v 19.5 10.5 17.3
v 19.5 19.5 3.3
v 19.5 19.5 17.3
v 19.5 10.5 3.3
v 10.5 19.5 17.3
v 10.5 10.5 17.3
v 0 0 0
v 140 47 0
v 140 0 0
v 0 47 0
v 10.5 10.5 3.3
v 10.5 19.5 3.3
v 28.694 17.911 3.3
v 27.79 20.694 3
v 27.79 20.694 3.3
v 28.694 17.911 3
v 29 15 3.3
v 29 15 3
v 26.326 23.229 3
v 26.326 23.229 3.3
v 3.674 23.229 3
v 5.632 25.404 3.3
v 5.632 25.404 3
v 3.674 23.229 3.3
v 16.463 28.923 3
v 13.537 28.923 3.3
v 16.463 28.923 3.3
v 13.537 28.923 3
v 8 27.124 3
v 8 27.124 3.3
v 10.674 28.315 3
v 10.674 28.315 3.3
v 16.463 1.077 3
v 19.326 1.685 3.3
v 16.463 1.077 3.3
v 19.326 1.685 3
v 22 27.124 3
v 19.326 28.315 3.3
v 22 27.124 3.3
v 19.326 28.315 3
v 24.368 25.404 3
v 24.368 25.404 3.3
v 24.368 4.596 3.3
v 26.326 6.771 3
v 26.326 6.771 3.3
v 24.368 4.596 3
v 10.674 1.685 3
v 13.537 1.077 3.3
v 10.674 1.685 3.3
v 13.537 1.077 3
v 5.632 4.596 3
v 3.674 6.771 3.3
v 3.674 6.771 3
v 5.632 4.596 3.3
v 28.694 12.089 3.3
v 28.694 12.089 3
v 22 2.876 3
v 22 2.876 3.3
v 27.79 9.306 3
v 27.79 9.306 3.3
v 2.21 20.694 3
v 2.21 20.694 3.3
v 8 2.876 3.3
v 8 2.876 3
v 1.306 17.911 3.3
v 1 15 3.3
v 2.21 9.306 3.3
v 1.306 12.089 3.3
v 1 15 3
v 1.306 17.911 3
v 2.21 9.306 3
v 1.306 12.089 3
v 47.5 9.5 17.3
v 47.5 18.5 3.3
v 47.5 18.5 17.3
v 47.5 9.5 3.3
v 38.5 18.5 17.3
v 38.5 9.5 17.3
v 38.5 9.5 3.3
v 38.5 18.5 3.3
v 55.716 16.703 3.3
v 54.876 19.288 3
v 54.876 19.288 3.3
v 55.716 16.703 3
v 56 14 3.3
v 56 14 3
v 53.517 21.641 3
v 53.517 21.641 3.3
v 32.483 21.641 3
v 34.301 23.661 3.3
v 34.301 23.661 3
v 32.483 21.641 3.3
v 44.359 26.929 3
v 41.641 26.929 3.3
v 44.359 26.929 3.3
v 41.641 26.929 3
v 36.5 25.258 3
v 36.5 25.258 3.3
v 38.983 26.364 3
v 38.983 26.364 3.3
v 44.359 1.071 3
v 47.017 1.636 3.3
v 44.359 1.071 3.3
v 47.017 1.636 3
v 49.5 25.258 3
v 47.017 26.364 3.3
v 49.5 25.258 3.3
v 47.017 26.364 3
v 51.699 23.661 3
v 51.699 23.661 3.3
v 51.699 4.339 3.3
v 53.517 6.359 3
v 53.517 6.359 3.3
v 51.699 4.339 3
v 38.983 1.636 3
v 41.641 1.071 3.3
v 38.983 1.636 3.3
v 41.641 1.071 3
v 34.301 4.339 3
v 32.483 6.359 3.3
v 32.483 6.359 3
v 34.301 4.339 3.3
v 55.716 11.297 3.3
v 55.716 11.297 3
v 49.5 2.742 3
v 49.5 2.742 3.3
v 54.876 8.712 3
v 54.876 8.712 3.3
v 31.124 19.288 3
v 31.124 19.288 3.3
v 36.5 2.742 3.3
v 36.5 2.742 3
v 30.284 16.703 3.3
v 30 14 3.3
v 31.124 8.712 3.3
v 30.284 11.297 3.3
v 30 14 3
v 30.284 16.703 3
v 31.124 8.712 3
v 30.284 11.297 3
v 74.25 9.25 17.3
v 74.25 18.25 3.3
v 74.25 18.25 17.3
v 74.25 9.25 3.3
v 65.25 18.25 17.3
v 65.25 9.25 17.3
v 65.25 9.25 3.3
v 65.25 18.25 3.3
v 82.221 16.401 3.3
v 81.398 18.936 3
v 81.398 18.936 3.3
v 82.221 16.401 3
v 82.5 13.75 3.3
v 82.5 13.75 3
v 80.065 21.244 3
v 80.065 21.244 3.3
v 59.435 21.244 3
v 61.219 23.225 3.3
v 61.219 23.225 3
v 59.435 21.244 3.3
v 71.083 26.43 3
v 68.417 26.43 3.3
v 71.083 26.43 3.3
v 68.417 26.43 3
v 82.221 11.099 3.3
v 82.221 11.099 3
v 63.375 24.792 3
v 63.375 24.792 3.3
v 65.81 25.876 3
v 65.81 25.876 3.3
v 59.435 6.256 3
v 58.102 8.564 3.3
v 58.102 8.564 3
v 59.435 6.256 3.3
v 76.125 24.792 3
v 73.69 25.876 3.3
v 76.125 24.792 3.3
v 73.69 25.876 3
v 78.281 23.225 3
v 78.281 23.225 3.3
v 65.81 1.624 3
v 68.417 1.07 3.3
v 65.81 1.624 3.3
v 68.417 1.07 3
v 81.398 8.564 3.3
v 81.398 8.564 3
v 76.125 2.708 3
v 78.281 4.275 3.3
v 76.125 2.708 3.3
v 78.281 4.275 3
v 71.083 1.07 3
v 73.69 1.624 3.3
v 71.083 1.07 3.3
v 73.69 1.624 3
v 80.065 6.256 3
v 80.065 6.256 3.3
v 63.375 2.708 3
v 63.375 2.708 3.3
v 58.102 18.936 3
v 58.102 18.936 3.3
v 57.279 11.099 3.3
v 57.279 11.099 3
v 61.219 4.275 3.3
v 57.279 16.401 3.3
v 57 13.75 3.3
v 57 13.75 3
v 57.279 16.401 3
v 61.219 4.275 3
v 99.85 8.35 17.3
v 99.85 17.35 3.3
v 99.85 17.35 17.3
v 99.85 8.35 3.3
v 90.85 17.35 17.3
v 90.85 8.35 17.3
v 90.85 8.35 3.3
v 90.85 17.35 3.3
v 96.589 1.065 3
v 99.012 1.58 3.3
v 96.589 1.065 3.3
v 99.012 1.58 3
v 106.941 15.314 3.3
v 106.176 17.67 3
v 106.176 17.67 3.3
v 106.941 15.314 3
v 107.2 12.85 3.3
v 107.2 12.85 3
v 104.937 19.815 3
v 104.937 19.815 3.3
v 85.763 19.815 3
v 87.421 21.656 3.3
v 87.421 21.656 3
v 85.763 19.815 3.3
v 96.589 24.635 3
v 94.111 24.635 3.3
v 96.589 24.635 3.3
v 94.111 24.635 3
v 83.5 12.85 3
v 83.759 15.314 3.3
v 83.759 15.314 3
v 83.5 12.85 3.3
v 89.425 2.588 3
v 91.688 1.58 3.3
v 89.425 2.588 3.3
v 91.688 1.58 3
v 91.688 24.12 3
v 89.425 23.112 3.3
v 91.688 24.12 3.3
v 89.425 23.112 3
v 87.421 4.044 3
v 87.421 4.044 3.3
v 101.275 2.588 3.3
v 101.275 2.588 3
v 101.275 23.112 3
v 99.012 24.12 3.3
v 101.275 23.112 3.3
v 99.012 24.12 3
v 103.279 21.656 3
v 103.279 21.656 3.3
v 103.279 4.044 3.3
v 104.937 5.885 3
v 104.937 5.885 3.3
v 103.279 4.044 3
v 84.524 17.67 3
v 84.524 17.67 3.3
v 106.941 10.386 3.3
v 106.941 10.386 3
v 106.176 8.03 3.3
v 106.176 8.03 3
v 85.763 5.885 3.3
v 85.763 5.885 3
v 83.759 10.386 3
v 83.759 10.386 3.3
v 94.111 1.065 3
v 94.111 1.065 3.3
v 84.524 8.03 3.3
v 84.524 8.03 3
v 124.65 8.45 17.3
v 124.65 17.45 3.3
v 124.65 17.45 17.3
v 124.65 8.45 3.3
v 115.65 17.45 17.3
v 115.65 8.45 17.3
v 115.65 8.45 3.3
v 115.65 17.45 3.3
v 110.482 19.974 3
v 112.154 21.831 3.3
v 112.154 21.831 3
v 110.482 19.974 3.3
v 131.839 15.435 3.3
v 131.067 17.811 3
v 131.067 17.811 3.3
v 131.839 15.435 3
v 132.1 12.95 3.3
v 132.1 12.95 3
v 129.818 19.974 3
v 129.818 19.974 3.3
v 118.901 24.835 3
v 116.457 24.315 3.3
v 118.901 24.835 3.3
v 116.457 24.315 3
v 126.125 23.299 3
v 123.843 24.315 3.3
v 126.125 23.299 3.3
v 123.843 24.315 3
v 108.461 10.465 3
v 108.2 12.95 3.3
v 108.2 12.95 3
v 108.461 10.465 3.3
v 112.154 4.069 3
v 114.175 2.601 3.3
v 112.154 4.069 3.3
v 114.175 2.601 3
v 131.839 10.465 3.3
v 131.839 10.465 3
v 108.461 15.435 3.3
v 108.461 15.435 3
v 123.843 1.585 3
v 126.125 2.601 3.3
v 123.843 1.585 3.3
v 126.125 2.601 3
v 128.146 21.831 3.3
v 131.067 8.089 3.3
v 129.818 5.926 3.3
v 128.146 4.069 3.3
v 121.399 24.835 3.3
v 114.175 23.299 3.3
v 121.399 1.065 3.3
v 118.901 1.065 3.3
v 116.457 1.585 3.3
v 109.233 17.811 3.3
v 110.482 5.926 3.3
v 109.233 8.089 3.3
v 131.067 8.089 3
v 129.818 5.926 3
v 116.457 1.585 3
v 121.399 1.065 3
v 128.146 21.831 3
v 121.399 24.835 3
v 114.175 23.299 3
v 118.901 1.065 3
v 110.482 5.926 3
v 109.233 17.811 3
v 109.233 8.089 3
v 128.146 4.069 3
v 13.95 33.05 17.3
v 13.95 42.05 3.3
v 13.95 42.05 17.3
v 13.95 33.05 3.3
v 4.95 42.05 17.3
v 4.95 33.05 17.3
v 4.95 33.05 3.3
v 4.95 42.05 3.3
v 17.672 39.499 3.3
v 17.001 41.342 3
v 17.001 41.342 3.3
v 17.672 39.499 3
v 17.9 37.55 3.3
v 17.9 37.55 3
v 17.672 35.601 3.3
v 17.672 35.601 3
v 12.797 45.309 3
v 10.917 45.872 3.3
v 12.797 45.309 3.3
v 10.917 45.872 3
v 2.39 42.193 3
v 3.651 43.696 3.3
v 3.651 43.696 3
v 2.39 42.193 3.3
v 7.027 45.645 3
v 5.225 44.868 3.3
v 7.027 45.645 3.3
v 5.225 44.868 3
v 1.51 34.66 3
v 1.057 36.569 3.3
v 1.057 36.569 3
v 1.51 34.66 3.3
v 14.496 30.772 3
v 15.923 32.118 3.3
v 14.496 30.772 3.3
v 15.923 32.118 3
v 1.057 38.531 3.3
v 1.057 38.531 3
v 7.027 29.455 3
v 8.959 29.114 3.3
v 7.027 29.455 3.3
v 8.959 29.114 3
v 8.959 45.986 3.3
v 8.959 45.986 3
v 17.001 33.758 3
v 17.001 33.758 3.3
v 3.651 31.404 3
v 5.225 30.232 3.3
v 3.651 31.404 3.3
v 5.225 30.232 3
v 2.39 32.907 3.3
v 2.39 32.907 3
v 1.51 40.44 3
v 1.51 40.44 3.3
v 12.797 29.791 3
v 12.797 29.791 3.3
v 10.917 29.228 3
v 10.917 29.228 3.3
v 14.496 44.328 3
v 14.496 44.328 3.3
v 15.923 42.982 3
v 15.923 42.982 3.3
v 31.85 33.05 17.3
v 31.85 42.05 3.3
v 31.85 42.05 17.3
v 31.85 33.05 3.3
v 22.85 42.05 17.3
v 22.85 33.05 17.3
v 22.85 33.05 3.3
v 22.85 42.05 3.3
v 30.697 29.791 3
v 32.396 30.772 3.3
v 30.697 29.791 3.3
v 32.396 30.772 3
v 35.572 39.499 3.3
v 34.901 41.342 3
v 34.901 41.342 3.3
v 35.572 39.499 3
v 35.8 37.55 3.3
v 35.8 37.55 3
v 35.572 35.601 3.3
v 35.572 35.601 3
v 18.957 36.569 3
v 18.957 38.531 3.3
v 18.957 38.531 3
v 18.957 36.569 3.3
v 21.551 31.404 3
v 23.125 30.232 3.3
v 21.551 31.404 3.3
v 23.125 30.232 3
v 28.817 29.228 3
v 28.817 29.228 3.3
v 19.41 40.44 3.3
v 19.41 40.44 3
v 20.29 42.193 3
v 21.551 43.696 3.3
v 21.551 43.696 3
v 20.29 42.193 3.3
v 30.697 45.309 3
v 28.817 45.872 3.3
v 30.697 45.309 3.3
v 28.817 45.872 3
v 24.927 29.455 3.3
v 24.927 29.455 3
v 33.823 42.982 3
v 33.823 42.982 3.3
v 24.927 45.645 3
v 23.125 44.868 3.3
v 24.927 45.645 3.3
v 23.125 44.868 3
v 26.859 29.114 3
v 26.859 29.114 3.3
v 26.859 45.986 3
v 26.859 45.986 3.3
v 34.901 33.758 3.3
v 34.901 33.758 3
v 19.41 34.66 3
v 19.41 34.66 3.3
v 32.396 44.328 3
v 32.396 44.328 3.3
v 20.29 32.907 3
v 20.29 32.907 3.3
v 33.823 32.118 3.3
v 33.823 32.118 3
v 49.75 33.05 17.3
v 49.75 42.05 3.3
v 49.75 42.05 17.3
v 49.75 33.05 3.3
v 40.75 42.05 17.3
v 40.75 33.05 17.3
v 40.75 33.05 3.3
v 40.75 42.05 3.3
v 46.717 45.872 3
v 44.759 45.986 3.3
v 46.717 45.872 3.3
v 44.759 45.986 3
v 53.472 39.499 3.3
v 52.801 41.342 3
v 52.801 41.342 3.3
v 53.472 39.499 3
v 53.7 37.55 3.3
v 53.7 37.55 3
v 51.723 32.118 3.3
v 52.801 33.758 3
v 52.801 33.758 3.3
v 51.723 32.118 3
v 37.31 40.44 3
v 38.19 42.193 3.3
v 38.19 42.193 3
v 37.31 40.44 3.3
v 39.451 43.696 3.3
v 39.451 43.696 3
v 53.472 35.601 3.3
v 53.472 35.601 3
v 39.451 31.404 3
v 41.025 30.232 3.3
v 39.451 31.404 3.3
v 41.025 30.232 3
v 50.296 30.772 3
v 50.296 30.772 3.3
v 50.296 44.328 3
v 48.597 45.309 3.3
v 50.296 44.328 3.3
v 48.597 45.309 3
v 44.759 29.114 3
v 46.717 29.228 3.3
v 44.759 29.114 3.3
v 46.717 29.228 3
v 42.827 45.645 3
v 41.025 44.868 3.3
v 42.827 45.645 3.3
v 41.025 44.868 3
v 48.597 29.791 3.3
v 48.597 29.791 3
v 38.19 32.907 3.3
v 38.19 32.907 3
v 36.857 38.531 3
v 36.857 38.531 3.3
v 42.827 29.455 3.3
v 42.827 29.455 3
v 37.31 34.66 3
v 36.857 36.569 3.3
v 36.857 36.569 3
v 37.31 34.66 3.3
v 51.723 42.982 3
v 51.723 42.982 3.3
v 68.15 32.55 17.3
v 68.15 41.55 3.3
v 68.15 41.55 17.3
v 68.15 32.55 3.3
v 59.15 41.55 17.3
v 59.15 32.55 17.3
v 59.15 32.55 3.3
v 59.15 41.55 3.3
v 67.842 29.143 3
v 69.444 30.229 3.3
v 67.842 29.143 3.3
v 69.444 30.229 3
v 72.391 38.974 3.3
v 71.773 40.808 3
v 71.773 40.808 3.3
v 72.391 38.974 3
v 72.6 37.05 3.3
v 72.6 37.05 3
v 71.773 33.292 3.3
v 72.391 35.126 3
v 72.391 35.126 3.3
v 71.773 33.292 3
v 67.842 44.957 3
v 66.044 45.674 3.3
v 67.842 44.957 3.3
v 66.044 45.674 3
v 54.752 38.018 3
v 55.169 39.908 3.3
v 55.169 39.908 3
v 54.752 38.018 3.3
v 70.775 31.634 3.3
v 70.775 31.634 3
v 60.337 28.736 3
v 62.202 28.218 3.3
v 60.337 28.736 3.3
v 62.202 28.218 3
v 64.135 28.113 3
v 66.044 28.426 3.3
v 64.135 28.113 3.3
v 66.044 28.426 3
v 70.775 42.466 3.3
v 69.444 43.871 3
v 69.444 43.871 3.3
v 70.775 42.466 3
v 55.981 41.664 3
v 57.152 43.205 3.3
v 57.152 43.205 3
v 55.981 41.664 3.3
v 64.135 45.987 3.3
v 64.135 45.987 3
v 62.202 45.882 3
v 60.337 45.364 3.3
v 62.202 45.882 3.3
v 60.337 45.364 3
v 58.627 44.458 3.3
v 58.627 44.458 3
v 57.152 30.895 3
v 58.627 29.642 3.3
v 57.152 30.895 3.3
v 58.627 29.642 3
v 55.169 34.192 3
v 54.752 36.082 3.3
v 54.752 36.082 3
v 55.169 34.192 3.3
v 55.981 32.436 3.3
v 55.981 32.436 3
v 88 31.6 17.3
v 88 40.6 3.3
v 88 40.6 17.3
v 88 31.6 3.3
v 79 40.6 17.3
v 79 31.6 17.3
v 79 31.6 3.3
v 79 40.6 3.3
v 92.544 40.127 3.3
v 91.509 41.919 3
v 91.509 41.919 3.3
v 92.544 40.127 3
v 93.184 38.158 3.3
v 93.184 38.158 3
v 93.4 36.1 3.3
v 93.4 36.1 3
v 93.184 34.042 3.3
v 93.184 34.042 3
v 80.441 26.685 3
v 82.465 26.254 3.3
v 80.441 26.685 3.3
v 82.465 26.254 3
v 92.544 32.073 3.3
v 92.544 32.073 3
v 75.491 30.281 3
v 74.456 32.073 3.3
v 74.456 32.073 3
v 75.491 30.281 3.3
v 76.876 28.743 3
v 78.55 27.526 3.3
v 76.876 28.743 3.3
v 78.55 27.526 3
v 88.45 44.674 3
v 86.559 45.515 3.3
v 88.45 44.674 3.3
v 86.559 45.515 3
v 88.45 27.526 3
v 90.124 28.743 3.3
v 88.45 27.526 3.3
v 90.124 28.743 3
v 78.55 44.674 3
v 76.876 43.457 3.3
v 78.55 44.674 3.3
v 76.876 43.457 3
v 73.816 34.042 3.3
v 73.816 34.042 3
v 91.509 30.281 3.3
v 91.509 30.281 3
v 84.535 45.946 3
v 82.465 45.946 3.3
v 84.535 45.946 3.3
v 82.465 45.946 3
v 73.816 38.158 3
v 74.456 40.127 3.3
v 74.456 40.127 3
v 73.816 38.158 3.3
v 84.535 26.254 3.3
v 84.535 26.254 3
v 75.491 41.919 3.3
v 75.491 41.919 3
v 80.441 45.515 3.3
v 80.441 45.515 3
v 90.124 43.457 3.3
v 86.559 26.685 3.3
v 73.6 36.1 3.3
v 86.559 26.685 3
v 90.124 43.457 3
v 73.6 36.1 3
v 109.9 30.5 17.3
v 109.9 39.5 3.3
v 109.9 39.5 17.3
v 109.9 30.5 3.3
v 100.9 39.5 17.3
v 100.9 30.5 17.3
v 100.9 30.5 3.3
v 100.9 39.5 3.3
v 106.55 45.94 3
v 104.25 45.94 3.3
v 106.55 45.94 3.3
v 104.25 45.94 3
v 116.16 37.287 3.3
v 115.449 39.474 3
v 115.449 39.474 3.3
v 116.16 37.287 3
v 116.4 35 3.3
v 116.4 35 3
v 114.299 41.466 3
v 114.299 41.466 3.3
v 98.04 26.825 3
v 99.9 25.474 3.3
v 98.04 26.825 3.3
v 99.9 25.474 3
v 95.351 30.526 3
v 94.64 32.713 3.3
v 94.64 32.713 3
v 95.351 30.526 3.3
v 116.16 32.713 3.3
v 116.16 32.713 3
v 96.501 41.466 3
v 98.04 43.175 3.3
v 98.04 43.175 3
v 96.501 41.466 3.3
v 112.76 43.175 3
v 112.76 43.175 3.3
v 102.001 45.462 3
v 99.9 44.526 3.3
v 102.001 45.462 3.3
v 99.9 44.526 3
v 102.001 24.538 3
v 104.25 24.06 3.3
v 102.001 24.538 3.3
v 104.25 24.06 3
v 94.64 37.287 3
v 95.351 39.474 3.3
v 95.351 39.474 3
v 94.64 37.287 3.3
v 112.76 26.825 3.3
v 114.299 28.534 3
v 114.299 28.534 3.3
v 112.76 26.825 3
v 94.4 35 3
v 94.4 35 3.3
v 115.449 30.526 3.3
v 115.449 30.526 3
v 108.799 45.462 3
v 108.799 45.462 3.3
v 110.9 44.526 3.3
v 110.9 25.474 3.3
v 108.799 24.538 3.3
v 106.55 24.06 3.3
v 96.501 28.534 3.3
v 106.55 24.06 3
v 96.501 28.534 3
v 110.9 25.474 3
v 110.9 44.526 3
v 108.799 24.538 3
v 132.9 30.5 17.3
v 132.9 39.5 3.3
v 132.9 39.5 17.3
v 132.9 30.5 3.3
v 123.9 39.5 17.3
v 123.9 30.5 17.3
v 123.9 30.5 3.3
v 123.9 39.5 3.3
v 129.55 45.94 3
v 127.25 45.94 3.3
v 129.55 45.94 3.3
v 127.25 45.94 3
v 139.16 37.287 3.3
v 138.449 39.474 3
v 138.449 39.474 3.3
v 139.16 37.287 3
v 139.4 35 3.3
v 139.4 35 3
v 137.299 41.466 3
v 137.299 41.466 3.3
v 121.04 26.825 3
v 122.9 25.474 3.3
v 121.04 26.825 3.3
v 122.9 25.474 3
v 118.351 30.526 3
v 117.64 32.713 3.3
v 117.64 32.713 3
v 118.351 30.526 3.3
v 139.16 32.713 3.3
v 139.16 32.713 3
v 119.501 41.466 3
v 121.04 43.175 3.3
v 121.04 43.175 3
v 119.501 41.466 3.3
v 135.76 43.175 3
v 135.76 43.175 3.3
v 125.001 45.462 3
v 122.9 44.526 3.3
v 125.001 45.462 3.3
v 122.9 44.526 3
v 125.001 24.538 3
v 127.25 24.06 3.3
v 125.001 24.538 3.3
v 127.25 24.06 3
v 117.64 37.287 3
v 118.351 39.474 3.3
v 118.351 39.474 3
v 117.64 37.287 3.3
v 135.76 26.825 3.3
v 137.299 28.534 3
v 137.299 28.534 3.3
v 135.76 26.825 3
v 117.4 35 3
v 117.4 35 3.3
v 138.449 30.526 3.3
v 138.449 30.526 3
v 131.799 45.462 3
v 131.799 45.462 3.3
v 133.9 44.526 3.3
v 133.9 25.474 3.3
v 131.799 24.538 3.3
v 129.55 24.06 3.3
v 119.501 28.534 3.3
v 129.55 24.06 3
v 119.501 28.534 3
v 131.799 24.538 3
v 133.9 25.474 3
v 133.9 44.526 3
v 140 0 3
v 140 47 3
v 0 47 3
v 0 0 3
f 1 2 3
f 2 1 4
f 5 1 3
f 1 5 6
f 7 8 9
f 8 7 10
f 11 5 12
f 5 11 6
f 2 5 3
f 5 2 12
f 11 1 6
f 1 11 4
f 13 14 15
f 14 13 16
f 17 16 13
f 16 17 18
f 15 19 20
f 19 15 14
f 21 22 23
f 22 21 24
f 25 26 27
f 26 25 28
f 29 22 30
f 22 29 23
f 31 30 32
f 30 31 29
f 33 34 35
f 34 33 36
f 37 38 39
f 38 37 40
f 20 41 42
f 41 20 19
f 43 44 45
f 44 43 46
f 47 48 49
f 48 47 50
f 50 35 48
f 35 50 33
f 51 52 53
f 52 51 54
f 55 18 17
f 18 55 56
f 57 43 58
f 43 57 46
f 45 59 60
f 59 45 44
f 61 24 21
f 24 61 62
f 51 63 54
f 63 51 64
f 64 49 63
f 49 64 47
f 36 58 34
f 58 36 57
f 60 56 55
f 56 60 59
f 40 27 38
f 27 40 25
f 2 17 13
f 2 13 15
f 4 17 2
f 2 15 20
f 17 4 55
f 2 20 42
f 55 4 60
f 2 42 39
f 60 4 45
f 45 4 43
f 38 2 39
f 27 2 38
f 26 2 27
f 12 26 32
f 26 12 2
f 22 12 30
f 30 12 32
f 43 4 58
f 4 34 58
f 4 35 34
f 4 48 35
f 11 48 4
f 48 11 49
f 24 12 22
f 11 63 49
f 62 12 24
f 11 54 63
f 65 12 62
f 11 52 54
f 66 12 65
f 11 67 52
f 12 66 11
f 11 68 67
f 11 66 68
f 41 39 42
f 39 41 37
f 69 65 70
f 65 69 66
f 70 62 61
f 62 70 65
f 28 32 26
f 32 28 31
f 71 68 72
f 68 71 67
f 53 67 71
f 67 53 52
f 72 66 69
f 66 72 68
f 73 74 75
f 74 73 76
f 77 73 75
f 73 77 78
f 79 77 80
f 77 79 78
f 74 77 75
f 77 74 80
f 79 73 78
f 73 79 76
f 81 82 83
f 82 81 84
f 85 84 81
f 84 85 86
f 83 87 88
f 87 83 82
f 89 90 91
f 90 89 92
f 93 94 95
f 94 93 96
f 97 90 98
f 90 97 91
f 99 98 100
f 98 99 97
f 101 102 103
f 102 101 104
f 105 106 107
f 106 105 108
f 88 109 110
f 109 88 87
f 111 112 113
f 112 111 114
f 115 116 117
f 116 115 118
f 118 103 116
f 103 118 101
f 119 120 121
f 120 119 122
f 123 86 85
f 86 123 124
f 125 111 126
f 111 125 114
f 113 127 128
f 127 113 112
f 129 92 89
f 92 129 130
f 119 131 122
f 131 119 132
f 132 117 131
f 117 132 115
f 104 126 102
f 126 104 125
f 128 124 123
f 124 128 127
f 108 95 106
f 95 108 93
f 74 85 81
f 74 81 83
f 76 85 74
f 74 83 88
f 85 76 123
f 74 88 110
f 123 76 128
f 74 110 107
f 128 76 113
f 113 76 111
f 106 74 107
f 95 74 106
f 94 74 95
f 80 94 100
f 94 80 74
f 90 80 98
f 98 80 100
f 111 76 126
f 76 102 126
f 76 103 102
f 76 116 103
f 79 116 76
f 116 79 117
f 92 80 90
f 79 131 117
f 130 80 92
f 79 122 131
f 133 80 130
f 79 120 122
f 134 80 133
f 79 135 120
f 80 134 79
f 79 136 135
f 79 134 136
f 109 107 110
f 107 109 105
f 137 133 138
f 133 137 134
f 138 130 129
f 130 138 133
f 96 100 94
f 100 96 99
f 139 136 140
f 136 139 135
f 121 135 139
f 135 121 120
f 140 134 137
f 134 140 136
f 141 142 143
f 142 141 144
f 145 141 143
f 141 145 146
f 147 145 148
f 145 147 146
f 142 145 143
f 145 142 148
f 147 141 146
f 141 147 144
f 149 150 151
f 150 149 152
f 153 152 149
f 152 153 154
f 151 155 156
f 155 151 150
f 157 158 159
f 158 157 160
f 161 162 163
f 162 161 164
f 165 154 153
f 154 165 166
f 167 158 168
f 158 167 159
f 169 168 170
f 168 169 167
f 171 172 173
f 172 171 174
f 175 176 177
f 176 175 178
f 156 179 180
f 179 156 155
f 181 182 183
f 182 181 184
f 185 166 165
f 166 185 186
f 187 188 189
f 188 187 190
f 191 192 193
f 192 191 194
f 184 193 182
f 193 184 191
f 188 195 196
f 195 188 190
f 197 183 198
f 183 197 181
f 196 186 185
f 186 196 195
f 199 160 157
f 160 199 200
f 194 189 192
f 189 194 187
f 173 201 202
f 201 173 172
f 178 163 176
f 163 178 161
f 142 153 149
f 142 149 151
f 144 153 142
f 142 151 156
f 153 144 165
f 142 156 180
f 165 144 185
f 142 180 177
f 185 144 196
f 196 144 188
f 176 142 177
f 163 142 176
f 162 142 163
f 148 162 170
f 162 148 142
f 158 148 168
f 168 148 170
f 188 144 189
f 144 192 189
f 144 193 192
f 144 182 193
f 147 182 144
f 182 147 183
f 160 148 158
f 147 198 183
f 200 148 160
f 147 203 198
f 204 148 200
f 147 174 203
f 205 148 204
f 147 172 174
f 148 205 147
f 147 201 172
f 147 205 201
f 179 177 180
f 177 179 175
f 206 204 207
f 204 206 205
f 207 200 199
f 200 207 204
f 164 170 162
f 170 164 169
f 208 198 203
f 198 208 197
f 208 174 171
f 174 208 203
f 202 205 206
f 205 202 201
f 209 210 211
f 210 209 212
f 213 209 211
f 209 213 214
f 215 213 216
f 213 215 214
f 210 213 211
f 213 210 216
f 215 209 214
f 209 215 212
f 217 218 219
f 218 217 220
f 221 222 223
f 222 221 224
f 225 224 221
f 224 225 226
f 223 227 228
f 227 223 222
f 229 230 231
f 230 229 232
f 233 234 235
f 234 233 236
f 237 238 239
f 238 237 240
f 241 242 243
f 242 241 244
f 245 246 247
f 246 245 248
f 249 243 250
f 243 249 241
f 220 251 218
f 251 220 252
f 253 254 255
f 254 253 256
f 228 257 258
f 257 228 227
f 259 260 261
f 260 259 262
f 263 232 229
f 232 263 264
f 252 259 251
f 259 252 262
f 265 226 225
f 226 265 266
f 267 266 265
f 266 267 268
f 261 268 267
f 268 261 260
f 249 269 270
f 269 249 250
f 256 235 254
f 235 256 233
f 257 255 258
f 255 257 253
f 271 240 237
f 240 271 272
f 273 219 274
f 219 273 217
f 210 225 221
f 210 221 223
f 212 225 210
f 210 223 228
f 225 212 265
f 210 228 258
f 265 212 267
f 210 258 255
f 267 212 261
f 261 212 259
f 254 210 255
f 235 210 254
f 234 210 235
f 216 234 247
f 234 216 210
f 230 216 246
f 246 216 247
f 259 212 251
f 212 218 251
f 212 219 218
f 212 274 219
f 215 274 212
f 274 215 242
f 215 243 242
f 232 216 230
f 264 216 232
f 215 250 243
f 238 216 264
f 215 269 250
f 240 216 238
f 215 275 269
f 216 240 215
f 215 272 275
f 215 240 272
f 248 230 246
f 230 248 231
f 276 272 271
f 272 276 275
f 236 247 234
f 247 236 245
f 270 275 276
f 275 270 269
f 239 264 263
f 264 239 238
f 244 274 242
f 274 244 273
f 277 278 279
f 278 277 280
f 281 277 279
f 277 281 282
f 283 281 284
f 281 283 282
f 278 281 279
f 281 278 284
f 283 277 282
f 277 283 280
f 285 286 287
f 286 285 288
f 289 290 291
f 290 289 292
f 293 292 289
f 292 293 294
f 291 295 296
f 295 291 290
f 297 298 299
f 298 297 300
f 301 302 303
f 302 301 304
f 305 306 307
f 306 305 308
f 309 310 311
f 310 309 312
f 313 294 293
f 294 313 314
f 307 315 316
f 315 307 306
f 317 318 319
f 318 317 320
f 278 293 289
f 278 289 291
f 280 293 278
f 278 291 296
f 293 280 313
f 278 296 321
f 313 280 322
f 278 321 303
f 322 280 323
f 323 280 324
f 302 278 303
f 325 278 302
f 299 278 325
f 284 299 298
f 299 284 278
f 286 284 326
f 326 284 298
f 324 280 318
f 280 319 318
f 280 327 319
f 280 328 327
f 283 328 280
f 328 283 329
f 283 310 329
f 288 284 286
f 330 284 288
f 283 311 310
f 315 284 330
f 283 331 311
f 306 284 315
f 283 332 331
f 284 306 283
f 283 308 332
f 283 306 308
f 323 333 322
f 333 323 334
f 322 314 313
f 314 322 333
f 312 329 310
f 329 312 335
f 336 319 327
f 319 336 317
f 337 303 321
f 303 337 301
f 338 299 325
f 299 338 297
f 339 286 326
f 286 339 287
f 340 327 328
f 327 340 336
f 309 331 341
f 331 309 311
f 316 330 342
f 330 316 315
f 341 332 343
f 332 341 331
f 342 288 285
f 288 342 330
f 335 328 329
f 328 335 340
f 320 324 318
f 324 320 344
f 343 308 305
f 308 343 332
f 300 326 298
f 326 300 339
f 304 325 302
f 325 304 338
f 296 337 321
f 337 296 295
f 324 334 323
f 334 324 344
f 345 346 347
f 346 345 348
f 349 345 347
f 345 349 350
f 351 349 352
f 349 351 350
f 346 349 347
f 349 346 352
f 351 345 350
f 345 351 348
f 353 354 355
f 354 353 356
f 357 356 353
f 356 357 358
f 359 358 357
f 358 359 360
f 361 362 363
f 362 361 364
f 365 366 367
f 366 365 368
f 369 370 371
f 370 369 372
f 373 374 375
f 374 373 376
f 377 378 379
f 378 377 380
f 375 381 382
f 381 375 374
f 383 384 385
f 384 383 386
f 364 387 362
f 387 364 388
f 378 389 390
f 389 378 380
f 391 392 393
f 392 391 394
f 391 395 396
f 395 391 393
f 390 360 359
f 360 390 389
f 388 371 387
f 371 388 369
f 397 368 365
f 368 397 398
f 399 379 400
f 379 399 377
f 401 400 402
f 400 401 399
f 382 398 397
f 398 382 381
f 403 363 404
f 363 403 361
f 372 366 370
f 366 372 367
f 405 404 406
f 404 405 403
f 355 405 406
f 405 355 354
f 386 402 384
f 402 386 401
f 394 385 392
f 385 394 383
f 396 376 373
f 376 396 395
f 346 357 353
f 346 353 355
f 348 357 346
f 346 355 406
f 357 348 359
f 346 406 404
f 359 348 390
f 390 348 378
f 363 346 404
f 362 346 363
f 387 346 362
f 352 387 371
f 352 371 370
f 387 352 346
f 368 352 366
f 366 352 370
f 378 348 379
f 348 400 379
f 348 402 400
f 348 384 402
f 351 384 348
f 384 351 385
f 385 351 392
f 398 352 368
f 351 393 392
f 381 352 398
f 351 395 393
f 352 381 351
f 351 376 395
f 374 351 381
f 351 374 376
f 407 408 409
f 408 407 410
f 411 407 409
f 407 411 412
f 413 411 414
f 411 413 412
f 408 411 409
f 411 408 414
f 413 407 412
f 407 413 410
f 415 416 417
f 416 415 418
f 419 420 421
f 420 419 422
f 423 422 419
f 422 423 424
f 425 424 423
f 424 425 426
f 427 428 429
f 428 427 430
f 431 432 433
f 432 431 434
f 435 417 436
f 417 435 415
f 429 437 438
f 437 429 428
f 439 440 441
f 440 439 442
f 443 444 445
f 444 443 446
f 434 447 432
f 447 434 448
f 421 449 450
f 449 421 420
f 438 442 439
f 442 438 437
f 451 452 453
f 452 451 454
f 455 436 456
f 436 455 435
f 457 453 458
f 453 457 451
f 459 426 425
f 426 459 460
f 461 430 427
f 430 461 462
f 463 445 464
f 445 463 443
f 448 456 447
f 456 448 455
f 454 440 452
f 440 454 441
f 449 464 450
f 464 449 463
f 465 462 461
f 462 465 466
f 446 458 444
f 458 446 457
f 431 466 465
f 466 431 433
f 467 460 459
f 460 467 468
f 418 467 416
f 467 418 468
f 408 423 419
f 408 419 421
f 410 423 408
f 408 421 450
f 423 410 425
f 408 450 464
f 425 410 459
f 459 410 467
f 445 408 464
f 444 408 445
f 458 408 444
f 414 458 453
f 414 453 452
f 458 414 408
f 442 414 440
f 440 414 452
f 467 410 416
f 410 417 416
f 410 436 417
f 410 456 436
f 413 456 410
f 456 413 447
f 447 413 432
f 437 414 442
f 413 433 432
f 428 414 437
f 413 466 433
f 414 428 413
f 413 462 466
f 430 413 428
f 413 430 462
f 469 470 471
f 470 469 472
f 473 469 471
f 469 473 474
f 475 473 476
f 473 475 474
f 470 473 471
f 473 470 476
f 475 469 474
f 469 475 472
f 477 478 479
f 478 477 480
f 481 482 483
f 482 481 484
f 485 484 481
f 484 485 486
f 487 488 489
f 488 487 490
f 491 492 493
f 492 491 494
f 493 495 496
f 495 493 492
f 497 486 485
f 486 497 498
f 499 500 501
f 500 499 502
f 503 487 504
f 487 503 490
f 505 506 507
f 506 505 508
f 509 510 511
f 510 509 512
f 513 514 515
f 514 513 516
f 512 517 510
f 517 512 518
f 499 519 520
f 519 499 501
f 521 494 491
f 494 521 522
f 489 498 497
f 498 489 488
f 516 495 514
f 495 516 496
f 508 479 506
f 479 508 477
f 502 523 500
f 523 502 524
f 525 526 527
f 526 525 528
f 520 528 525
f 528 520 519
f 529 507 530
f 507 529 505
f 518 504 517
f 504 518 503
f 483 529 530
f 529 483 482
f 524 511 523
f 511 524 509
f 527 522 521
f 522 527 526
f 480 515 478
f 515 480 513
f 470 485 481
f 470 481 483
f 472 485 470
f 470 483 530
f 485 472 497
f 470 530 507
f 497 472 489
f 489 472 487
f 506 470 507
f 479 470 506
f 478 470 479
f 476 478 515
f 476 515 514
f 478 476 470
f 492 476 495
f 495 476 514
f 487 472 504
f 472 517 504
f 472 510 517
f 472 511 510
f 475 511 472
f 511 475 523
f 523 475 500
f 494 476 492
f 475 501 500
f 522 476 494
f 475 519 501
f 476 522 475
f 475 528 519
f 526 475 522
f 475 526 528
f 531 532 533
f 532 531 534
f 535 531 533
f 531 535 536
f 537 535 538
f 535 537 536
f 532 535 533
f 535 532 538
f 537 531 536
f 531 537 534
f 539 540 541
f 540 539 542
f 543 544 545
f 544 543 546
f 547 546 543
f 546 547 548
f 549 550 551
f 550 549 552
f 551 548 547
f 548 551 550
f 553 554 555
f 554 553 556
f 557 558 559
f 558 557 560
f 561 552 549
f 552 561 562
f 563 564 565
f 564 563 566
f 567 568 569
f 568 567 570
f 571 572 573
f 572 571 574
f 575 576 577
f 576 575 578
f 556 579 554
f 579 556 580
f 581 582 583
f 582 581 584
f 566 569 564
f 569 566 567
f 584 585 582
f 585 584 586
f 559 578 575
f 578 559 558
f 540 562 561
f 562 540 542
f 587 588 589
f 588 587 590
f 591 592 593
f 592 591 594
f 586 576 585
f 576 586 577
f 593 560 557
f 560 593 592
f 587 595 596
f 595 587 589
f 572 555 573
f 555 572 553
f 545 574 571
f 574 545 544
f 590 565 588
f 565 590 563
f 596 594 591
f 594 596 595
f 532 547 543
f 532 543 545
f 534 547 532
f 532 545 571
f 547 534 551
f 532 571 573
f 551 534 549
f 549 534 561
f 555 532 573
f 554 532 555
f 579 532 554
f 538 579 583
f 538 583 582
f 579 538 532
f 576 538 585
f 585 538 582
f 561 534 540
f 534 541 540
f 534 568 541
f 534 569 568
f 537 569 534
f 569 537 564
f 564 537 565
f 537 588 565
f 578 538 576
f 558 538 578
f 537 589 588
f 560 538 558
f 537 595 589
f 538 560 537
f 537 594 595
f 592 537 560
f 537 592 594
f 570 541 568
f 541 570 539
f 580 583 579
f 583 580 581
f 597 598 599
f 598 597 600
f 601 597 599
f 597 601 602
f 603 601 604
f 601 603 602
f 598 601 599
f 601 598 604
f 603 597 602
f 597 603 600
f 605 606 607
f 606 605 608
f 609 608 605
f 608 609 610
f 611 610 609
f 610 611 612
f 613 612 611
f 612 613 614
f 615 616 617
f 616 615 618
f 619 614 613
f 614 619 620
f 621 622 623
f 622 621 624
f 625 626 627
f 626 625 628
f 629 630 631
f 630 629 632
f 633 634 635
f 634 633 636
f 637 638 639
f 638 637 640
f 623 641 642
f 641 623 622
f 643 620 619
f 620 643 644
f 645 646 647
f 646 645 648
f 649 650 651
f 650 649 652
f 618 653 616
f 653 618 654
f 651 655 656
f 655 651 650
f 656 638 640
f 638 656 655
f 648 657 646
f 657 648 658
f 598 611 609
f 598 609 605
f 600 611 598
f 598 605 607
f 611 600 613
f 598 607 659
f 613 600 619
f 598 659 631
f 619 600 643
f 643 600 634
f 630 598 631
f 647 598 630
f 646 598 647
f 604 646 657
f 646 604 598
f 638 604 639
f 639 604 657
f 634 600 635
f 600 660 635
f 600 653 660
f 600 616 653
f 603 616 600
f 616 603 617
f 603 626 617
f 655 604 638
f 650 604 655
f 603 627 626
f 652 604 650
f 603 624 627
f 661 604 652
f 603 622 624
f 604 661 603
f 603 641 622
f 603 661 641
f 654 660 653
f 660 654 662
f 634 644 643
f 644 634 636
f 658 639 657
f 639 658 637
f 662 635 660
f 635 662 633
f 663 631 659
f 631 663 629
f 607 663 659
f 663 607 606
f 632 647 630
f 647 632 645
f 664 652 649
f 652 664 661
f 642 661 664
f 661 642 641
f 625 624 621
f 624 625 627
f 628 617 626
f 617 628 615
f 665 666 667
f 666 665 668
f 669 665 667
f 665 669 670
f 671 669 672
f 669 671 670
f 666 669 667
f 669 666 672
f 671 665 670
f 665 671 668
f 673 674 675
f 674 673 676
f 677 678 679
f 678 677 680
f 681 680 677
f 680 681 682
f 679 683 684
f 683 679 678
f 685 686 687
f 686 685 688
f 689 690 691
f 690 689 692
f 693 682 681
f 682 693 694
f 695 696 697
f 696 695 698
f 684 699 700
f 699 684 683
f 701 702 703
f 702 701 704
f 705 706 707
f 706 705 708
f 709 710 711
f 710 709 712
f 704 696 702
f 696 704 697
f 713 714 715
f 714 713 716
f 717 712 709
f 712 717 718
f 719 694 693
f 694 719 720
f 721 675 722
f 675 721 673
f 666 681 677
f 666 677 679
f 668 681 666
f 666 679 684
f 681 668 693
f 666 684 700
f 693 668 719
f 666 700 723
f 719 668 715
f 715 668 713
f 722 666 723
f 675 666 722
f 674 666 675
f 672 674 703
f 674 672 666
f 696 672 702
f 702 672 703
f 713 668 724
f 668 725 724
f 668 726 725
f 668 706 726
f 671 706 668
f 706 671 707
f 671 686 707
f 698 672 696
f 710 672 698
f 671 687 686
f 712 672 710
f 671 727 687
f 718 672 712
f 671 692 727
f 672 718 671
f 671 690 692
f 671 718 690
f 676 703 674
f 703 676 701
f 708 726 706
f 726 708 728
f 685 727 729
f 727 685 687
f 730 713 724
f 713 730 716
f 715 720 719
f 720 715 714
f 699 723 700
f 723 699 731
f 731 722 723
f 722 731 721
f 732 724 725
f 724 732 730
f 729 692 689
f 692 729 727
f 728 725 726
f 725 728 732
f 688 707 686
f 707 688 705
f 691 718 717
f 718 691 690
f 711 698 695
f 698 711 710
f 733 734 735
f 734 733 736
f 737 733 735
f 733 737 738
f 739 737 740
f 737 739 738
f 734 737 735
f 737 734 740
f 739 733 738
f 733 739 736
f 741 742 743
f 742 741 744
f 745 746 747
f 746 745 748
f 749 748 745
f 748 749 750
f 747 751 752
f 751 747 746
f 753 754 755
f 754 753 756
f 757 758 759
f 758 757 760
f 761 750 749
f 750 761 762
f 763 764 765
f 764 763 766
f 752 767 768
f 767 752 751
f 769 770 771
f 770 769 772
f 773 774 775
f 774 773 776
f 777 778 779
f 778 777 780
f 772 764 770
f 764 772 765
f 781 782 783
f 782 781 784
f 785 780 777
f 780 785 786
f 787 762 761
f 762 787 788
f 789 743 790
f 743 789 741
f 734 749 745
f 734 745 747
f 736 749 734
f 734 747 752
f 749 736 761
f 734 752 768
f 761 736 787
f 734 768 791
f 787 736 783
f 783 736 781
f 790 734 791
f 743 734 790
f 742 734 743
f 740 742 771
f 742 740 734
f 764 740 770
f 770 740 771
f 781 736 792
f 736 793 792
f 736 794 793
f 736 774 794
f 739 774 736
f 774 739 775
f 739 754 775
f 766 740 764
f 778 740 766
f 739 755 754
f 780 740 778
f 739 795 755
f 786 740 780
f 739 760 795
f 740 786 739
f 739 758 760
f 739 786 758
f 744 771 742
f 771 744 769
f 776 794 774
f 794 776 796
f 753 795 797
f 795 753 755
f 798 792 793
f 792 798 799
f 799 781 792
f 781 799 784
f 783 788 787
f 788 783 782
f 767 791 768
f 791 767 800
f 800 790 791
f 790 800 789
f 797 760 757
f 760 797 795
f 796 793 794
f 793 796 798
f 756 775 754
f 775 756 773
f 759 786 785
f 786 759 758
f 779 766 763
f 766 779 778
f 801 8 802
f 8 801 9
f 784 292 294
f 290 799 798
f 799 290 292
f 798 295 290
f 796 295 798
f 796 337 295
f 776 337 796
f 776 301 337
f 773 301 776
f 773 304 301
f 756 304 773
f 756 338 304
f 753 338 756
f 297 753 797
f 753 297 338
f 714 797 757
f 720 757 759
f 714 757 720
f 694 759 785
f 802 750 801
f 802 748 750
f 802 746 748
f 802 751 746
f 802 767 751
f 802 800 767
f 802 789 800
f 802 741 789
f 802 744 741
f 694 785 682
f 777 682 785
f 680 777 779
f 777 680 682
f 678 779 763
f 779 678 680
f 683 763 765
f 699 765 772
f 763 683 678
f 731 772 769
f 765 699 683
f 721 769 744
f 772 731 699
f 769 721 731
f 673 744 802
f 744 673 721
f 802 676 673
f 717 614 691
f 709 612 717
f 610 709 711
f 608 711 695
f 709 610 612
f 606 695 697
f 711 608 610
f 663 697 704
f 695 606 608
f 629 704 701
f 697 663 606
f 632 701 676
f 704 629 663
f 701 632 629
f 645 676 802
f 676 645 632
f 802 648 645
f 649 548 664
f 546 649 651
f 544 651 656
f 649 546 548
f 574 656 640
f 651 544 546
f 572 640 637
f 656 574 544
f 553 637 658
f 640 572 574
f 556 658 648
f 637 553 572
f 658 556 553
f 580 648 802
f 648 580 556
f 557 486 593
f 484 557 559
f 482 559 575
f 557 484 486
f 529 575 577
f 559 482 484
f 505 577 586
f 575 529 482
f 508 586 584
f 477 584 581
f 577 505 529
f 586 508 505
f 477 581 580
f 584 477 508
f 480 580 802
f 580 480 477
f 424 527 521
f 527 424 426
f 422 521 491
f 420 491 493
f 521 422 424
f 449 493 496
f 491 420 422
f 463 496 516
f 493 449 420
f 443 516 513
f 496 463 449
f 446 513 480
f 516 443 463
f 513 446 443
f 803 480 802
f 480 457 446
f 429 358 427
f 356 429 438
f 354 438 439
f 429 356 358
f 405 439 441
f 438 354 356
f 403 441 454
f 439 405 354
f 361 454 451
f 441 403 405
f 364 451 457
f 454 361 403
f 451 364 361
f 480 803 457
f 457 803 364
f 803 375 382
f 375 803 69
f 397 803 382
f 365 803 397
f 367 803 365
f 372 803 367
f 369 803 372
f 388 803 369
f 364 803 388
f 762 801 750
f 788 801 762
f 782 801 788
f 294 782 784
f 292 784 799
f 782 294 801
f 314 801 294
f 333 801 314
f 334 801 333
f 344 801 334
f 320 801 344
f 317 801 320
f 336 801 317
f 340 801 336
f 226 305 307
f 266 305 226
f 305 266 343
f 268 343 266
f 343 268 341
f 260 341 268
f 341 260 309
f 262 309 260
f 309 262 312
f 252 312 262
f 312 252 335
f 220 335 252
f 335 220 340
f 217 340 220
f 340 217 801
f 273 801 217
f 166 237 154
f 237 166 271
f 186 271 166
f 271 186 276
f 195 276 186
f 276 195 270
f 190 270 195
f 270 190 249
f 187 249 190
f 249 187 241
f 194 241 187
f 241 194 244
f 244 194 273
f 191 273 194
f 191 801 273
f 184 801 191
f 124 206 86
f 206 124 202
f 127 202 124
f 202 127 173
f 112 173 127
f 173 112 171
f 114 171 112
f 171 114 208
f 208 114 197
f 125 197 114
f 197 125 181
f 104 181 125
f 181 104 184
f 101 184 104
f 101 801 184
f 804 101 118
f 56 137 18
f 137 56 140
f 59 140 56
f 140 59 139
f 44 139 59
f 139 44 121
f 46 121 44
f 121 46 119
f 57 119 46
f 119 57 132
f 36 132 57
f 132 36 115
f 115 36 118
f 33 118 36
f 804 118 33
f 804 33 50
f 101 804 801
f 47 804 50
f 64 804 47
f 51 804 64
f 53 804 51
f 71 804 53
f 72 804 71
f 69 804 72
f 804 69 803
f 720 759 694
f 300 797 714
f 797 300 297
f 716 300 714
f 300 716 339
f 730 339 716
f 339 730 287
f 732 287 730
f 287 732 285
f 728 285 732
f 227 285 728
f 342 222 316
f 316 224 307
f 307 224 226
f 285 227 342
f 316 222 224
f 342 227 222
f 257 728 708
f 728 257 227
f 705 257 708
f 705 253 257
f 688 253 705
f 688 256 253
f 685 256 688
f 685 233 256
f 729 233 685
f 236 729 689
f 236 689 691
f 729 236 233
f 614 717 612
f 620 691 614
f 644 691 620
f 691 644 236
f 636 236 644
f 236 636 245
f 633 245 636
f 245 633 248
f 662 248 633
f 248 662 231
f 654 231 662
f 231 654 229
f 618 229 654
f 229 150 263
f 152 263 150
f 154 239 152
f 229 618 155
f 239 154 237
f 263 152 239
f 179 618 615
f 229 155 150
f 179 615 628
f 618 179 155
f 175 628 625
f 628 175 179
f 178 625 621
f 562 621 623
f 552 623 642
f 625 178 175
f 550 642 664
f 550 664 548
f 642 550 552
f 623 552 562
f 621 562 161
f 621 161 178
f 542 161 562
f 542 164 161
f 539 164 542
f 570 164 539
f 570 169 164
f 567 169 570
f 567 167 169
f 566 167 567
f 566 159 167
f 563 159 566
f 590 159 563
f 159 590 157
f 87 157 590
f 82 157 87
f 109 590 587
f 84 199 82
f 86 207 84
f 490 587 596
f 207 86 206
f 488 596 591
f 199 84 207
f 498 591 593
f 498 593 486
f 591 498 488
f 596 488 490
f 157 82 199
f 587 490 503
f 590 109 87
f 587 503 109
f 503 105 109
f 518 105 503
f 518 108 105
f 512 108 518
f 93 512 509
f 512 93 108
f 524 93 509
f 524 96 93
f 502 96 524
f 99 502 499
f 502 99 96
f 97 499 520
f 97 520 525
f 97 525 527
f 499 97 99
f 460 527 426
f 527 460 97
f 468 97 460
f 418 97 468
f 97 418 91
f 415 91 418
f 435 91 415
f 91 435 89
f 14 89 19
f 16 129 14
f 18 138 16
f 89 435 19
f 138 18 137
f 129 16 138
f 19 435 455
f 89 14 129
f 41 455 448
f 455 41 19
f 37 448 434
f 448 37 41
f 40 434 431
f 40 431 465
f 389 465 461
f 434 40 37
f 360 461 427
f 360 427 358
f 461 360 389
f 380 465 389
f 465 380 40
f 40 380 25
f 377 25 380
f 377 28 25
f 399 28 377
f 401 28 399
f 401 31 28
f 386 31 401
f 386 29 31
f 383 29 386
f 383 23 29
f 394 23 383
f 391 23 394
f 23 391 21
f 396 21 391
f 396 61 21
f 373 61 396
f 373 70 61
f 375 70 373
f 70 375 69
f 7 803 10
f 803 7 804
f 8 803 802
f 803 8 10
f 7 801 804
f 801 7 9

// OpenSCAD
//translate([-140/2, -45/2, 0])
pad_w = 140;
pad_d = 47;
pad_h = 3;
cube([pad_w, pad_d, pad_h]);

module peg(x, y, d)
{
    w = 9;
    h = 17.3;
    translate([x - w/2, y - w/2, 0])
    {
        cube([w, w, h]);
    }
    translate([x, y, 0])
    cylinder(3.3, d/2, d/2);//just for checking
}
d21 = 28.0;
d19 = 26.0;
d19h = 25.5;
d18h = 23.7;
d17 = 23.9;
d16 = 22.0;
d15 = 22.0;
d14 = 19.8;
d13 = 17.9;
d12 = 16.9;
d11 = 16.9;
d10 = 16.9;

row1 = [d21, d19, d19h, d18h, d17];
row2 = [d10, d11, d12, d13, d14, d15, d16];
interspace = 1.0;
x_vals = [
    for (
        i = 0, accum = 0.0;
        i < len(row1);
        accum = accum + row1[i] + interspace, i = i + 1
    )
    accum
];

for ( i = [ 0 : len(row1) - 1] )
{
    d = row1[i];
    x = interspace + x_vals[i] + d / 2;
    echo(x, d);
    peg(x, d/2 + interspace, d);
}

x_vals2 = [
    for (
        i = 0, accum = 0.0;
        i < len(row2);
        accum = accum + row2[i] + interspace, i = i + 1
    )
    accum
];

for ( i = [ 0 : len(row2) - 1] )
{
    d = row2[i];
    x = interspace + x_vals2[i] + d / 2;
    echo(x, d);
    peg(x, pad_d - d/2 - interspace, d);
}
